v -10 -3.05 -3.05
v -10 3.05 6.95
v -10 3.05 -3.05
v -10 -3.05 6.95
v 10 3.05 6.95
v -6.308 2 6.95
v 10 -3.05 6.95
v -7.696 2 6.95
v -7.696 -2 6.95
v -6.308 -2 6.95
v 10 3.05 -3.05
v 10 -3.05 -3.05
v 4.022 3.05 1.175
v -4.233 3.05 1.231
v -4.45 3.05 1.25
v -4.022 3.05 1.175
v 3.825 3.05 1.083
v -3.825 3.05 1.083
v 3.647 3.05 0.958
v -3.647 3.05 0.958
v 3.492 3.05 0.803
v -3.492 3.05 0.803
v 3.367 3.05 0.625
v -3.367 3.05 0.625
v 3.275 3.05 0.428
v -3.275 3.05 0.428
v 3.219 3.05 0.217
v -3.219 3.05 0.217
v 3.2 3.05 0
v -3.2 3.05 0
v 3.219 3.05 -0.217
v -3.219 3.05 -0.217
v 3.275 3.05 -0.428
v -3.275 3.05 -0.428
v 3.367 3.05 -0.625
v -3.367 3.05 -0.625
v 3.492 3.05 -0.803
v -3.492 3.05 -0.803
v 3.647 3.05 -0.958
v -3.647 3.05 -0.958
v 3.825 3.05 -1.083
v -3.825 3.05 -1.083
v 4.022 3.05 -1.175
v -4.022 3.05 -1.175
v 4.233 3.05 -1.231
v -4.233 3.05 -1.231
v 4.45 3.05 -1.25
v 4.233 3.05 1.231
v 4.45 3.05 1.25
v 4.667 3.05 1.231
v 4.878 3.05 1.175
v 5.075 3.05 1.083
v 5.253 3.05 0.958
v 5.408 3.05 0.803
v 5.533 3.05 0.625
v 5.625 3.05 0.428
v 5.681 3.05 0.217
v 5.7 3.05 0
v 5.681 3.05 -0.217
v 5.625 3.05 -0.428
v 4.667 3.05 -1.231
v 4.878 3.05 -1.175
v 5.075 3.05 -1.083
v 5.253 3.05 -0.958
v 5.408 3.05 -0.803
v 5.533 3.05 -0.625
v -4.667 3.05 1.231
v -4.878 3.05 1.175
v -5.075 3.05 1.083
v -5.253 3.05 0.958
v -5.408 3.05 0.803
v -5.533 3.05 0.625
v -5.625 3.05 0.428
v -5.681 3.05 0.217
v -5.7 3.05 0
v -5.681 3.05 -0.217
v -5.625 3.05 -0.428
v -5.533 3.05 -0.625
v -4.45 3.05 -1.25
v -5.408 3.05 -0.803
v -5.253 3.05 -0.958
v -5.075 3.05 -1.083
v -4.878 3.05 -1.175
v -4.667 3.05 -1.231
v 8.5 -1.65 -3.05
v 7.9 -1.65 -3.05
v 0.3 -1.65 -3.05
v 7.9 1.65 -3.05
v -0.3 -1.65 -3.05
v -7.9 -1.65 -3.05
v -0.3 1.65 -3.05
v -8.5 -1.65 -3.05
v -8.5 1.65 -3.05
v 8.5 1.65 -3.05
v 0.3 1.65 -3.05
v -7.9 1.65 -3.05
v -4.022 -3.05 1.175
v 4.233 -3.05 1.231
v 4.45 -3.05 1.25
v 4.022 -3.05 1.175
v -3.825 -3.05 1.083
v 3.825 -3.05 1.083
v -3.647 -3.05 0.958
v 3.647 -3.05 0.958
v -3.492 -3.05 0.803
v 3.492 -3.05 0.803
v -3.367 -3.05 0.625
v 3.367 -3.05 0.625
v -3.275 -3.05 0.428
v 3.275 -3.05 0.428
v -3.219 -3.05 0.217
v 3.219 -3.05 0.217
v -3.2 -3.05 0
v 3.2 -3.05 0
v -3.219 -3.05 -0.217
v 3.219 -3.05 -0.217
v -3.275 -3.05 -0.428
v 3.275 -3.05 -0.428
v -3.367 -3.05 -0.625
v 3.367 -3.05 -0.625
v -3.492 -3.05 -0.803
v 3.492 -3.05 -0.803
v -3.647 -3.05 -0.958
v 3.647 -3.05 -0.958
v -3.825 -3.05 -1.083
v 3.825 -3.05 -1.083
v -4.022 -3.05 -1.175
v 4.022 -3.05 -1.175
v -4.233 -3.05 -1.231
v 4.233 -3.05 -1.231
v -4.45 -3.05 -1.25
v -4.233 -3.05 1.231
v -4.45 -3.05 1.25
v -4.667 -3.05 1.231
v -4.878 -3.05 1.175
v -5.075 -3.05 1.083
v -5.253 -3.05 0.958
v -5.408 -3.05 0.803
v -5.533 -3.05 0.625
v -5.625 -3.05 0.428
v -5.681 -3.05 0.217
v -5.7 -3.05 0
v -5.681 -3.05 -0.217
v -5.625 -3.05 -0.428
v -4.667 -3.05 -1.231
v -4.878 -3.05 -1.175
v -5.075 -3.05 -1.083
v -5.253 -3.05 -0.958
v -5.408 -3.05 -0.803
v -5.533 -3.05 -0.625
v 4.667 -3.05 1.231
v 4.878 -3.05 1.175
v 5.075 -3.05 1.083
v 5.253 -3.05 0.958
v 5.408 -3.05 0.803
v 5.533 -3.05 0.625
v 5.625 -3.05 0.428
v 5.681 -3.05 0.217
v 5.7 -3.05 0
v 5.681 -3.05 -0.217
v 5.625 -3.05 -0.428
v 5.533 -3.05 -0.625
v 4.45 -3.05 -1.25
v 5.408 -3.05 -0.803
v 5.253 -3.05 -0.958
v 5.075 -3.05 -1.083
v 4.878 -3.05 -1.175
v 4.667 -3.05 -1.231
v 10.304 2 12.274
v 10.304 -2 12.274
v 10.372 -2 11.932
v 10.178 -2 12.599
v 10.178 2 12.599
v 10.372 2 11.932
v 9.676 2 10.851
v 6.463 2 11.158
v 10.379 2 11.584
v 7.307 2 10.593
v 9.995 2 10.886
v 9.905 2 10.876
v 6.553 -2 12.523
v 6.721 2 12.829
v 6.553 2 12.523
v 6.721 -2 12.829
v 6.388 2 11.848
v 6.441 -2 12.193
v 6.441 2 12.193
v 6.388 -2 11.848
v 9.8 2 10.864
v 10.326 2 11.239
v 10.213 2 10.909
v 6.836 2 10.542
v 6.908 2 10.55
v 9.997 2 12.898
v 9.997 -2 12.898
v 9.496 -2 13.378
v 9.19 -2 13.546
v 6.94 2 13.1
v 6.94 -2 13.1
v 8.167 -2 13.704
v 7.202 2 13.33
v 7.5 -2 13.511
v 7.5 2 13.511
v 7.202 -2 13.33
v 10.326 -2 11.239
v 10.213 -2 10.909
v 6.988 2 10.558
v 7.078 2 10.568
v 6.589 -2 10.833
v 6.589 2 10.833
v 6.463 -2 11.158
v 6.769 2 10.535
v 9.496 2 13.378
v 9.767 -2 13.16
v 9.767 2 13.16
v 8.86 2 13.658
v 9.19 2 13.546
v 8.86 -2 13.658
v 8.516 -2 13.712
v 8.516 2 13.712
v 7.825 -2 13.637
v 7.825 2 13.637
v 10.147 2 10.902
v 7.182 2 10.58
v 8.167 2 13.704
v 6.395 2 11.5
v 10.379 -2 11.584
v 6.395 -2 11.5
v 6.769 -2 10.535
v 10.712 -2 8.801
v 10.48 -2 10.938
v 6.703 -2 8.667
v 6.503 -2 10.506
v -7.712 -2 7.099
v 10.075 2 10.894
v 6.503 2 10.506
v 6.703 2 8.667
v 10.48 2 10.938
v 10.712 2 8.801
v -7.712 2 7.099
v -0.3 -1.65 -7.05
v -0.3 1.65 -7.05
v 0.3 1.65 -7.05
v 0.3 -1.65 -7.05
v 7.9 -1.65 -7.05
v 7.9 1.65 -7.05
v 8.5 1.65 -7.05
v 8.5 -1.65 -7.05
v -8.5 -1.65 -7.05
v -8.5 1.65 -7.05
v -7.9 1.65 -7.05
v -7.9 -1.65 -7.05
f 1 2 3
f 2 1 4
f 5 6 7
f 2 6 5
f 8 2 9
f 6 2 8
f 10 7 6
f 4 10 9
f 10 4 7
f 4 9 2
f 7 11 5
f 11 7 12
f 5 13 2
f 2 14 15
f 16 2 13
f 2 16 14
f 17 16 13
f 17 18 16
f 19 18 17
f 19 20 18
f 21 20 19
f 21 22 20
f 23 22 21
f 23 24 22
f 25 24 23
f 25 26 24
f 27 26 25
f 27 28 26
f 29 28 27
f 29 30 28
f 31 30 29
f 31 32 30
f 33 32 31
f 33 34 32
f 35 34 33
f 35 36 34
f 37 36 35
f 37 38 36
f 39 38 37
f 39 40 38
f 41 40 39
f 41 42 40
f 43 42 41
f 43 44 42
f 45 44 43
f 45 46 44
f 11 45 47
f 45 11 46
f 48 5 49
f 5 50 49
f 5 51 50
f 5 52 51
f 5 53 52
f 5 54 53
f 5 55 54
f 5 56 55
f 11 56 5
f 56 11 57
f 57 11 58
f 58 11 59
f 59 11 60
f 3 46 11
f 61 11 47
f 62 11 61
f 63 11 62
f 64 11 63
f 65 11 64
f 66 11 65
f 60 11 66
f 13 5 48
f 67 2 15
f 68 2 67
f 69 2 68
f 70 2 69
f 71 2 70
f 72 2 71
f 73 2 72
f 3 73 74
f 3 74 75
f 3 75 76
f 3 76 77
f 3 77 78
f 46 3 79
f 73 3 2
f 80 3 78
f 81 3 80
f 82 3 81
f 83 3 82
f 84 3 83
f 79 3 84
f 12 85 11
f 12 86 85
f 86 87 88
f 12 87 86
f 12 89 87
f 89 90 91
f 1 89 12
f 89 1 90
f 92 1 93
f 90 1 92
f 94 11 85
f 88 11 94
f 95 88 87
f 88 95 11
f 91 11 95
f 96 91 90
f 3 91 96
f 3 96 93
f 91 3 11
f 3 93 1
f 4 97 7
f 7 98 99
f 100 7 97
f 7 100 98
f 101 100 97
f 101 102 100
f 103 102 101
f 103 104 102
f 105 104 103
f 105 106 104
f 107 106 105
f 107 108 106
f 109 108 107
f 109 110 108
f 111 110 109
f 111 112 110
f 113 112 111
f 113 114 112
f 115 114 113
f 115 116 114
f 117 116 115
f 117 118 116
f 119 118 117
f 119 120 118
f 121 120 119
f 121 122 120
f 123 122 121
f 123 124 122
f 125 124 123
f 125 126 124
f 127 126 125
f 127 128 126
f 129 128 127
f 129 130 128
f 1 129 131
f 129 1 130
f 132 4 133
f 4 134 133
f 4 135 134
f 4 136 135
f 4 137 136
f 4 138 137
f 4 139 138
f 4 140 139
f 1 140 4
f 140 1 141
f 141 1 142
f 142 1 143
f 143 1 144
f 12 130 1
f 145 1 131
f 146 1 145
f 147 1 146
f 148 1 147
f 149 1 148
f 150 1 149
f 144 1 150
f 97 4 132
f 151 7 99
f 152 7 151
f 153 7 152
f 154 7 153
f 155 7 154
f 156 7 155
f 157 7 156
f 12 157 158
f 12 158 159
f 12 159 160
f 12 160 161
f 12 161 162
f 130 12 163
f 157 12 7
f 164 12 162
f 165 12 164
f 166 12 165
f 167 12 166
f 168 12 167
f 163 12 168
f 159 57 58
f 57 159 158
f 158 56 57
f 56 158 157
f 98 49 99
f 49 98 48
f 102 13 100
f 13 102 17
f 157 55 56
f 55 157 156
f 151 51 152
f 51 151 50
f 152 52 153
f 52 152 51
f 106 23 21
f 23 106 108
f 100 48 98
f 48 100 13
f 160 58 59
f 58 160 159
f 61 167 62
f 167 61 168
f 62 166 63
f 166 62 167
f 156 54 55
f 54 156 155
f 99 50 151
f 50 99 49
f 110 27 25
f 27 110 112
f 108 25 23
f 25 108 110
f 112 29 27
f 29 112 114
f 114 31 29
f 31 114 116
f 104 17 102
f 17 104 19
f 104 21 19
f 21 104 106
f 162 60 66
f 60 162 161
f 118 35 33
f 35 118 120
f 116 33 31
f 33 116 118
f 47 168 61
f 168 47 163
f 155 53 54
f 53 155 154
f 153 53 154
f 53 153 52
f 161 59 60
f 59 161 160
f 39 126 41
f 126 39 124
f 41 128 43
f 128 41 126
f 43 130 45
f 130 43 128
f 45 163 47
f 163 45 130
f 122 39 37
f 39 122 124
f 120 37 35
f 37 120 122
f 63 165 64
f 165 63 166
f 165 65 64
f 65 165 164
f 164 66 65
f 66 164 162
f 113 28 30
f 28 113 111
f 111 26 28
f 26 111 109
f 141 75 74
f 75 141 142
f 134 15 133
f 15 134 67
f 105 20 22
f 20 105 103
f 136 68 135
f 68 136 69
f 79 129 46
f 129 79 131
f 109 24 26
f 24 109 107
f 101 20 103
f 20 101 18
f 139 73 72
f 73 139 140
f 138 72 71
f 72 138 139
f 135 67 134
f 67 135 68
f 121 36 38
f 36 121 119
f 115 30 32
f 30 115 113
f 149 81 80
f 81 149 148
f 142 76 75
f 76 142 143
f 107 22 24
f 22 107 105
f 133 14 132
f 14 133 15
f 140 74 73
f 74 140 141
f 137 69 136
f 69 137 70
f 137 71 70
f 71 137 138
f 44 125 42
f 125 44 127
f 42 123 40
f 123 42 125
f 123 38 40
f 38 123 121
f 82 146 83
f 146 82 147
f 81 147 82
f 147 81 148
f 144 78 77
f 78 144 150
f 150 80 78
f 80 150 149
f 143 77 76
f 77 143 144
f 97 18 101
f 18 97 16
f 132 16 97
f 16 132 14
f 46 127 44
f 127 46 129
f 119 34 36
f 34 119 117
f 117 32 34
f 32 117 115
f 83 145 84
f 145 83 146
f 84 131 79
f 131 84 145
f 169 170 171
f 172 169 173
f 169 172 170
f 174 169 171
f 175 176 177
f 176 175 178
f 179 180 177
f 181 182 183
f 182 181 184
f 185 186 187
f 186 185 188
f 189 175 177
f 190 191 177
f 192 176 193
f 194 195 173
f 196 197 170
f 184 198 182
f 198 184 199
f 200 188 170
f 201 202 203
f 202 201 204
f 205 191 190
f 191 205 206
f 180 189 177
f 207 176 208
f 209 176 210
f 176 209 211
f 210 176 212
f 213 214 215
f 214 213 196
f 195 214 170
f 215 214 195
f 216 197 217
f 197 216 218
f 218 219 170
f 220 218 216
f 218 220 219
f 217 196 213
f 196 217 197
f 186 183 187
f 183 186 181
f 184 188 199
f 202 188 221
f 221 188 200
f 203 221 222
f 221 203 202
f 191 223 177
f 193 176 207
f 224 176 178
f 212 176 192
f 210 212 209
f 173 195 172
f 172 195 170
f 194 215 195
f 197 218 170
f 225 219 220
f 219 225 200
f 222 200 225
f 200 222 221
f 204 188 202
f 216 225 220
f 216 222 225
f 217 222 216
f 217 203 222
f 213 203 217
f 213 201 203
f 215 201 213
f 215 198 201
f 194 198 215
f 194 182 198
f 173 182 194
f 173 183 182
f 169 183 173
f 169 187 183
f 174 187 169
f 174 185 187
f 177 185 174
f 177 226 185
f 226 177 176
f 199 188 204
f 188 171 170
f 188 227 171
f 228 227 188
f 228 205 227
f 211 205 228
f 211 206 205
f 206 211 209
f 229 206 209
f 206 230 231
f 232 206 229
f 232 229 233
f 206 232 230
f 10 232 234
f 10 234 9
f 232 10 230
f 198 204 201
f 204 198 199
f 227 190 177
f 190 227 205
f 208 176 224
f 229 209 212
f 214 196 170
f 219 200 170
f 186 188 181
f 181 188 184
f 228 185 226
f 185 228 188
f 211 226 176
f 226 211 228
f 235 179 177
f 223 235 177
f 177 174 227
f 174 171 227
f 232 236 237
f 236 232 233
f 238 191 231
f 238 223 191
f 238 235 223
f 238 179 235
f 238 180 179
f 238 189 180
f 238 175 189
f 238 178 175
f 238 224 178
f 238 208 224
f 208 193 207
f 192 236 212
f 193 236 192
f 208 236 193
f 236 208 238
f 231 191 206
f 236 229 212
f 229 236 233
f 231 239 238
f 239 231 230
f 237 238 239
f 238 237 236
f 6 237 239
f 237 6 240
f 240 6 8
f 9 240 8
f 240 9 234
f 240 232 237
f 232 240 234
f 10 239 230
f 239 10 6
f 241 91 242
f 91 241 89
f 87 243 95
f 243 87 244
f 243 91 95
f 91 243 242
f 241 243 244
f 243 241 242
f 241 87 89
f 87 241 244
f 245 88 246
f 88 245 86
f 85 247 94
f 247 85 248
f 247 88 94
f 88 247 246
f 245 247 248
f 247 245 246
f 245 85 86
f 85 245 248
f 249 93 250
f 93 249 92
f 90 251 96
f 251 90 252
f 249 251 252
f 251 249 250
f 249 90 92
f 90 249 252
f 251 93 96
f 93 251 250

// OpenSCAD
/*
  Micro switch with roller

*/
/*[configuration]*/
$fn=36; //curve refinement

/*[body]*/
bX=20;  
bY=6.1;
bZ=10;
hD=2.5; //hole diameter
holeFromBottom=1.8; //absolute distance of mounting hole from bottom of switch
holeFromEdge=4.3; //absolute distance of mounting hole from edge

/*[terminals]*/
tX=.6;
tY=3.3;
tZ=4;
termFromEdge=1.5;


/*[switch arm]*/
aX=18.5;
aY=4;
aZ=.3;
armFromEdge=3; //absolute distance of arm from edge
rollerOverArm=1; //absolute distance of roller over the arm
armOverBody=4; //distace of arm over body 
addRoller=1;
rollerD=4;

/*[Hidden]*/
hR=hD/2; 
echo(hR);
hZ=bZ/2-hR-holeFromBottom; //place the hole
hX=bX/2-hR-holeFromEdge;
//hY=bX/2-hR-holeFromEdge;
rollerR=rollerD/2;
armAngle=asin(armOverBody/aX/2);

module body() {
  difference() {
    color("gray")
      cube([bX, bY, bZ], center=true);
    rotate([90, 0, 0])
      translate([hX, -hZ, 0])
      cylinder(r=hR, h=bY*1.5, center=true);
    rotate([90, 0, 0])
      translate([-hX, -hZ, 0])
        cylinder(r=hR, h=bY*1.5, center=true);
  }
}

module arm() {
  color("silver")
  union() {
    rotate([])
      cube([aX, aY, aZ], center=true);
    if (addRoller==1) {
      translate([aX/2-rollerR, 0, rollerR+rollerOverArm])
        rotate([90, 0, 0])
        cylinder(h=aY, r=rollerR, center=true);
      translate([aX/2-rollerR, 0, rollerR/2])
        cube([rollerD, rollerD, rollerR], center=true);
    }
  
  }
}

module terminals() {
  translate([0, 0, -bZ/2-tZ/2])
    cube([tX, tY, tZ], center=true);
  translate([bX/2-tX/2-termFromEdge, 0, -bZ/2-tZ/2])
    cube([tX, tY, tZ], center=true);
  translate([-1*(bX/2-tX/2-termFromEdge), 0, -bZ/2-tZ/2])
    cube([tX, tY, tZ], center=true);
}

module micro_switch() {
  //center on holes
  translate([0, 0, hZ])
  union() {
    body();
    translate([armFromEdge/2, 0, bZ/2+armOverBody/4])
      rotate([0, -armAngle, 0])
      arm();
    color("silver")
      terminals();
  }  
}

micro_switch();
